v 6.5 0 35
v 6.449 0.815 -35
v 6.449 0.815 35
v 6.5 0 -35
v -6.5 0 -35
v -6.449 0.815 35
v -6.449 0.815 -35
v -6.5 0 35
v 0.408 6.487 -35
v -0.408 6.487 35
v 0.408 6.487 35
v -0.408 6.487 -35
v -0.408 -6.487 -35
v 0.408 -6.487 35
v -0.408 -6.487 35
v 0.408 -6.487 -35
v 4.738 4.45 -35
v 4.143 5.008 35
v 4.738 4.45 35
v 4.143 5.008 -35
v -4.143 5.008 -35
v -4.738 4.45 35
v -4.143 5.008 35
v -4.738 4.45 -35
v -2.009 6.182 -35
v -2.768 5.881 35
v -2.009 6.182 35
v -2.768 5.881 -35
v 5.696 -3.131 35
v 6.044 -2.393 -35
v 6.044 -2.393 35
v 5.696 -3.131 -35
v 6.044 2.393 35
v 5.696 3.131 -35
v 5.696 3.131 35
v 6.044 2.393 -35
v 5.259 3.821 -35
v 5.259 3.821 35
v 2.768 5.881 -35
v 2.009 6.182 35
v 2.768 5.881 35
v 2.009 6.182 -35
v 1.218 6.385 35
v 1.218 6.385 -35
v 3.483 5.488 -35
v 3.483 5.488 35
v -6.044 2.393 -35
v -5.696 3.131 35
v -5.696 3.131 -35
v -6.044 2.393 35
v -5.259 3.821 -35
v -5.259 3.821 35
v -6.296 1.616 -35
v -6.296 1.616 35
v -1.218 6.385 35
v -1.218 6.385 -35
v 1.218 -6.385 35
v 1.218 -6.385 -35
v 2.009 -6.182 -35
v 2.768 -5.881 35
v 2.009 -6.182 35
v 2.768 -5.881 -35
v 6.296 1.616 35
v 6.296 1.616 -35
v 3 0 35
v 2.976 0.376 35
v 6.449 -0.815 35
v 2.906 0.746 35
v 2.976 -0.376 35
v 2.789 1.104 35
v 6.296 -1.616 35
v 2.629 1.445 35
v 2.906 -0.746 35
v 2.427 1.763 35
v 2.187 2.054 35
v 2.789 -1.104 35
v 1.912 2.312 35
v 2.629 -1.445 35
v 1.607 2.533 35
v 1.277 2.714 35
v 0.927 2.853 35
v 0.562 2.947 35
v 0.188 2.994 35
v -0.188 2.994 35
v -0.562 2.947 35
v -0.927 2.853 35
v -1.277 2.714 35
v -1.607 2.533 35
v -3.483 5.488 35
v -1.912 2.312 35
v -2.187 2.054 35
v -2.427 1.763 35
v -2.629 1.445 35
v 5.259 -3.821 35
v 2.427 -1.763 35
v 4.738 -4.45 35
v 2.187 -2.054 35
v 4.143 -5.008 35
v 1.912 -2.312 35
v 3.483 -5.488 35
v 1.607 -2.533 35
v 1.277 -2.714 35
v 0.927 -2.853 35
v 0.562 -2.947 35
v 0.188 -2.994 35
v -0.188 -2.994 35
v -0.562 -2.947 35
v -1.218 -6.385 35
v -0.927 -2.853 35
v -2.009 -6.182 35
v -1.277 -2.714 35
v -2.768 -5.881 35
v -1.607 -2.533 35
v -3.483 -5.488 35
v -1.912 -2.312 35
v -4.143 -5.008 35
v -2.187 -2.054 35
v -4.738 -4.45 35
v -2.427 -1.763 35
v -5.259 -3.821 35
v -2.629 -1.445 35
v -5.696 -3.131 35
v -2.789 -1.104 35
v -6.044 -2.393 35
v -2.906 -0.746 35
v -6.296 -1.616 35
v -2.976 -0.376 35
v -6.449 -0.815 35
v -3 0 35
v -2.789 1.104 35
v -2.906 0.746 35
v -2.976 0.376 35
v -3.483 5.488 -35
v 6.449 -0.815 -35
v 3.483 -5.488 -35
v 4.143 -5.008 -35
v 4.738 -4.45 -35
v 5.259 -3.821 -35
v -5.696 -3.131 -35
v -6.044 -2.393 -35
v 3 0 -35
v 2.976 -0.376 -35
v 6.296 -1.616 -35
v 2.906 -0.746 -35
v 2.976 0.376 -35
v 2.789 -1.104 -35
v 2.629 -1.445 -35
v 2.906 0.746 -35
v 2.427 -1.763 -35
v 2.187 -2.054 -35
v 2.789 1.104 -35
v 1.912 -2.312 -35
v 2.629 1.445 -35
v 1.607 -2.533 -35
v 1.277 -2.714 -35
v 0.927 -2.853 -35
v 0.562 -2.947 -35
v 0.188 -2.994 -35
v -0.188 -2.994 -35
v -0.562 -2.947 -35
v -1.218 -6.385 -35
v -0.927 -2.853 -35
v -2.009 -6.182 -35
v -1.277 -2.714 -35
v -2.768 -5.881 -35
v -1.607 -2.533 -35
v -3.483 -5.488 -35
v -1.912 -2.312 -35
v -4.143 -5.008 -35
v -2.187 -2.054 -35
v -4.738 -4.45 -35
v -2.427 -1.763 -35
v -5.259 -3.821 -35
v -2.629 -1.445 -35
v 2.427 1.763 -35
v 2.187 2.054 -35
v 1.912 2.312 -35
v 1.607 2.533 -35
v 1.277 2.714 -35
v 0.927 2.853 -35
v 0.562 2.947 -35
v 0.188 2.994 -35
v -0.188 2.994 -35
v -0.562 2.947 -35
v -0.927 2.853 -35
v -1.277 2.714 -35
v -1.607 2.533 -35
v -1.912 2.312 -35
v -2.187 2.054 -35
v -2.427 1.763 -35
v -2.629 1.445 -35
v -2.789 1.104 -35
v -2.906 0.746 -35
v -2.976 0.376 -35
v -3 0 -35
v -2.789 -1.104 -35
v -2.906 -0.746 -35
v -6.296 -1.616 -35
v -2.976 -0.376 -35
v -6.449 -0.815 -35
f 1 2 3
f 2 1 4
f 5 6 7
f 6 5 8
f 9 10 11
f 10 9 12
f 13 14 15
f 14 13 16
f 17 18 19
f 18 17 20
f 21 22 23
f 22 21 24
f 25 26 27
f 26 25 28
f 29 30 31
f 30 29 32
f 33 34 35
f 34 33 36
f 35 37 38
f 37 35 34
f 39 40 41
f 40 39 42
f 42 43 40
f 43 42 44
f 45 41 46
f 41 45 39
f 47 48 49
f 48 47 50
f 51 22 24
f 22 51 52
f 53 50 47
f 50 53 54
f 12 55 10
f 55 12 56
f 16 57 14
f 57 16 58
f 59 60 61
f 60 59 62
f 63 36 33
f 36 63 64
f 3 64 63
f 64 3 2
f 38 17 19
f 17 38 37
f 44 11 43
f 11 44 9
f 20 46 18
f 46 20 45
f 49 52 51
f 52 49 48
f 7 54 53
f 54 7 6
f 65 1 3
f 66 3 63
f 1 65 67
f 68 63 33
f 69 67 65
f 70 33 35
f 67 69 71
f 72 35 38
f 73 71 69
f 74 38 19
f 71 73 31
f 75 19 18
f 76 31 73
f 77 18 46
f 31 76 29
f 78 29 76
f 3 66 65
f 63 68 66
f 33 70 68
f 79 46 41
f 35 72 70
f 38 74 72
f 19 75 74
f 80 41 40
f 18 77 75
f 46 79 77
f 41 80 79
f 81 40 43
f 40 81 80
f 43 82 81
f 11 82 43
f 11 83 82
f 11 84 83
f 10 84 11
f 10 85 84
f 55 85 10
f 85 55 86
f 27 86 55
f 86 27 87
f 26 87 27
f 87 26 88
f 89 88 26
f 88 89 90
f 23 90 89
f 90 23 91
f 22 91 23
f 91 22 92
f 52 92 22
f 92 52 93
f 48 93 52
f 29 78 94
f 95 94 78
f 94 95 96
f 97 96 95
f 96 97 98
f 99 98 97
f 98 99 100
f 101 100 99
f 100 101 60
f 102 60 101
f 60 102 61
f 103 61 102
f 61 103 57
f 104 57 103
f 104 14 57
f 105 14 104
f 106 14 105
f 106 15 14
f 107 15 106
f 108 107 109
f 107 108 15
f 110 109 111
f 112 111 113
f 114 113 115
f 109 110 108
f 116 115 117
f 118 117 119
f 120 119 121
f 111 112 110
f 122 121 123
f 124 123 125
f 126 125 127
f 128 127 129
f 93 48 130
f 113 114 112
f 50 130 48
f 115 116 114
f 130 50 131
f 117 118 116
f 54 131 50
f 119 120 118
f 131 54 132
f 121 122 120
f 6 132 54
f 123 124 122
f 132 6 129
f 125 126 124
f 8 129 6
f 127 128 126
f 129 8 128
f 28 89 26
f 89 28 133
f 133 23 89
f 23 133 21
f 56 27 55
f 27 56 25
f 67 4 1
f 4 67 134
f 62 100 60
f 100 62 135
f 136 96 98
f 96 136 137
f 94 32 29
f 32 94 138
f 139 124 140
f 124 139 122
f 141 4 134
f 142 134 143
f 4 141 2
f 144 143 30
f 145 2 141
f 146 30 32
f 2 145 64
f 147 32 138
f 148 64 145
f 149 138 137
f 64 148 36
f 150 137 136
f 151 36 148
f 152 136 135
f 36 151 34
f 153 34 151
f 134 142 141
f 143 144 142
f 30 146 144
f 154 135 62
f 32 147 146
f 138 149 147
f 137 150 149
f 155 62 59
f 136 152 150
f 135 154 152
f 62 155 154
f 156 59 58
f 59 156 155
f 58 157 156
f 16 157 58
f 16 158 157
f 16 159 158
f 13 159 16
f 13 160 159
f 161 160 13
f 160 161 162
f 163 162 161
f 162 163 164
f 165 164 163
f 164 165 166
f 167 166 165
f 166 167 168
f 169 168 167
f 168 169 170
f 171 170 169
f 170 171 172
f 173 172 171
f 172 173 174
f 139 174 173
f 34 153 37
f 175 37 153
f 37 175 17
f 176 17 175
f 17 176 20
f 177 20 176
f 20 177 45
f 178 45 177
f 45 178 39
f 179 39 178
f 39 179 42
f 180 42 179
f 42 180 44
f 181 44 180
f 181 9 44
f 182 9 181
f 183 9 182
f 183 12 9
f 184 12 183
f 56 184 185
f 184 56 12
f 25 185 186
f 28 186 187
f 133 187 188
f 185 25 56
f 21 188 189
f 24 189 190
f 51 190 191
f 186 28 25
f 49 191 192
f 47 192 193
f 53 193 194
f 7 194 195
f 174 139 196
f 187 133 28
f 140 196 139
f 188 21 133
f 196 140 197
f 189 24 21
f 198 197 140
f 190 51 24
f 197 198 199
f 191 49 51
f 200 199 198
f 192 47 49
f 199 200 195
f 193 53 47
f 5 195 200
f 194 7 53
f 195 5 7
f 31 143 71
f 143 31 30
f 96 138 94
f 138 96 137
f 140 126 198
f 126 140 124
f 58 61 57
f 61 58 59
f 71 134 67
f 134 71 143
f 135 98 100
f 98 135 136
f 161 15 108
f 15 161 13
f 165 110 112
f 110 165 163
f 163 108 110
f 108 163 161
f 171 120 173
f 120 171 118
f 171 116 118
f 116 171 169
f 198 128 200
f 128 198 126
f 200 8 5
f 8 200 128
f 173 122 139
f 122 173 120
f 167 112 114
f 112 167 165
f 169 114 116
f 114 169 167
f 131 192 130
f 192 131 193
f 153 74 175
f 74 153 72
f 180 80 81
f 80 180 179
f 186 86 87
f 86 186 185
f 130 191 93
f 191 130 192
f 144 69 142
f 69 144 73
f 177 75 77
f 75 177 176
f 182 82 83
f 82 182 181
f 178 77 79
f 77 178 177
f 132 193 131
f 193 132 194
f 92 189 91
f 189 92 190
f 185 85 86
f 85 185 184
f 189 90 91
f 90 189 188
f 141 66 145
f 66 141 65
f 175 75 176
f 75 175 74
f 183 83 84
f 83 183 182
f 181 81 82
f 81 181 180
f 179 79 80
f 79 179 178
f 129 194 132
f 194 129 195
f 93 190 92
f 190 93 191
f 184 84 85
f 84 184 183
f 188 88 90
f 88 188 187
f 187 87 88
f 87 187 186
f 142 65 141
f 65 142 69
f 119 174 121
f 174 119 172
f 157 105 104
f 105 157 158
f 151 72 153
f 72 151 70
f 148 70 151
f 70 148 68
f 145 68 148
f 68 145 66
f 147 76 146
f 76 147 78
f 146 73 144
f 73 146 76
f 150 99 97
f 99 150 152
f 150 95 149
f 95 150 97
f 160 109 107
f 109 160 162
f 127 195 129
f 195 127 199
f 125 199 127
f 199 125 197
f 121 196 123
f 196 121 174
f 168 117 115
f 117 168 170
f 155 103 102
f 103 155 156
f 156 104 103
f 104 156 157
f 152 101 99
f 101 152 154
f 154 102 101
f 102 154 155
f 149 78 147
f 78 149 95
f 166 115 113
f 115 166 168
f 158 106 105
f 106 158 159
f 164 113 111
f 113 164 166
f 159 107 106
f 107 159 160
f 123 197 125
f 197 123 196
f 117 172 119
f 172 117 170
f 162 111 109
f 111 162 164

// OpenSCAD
$fn = 50;


difference() {
	union() {
		translate(v = [0, 0, -35.0000000000]) {
			cylinder(h = 70, r = 6.5000000000);
		}
	}
	union() {
		translate(v = [0, 0, -100.0000000000]) {
			cylinder(h = 200, r = 3);
		}
	}
}
